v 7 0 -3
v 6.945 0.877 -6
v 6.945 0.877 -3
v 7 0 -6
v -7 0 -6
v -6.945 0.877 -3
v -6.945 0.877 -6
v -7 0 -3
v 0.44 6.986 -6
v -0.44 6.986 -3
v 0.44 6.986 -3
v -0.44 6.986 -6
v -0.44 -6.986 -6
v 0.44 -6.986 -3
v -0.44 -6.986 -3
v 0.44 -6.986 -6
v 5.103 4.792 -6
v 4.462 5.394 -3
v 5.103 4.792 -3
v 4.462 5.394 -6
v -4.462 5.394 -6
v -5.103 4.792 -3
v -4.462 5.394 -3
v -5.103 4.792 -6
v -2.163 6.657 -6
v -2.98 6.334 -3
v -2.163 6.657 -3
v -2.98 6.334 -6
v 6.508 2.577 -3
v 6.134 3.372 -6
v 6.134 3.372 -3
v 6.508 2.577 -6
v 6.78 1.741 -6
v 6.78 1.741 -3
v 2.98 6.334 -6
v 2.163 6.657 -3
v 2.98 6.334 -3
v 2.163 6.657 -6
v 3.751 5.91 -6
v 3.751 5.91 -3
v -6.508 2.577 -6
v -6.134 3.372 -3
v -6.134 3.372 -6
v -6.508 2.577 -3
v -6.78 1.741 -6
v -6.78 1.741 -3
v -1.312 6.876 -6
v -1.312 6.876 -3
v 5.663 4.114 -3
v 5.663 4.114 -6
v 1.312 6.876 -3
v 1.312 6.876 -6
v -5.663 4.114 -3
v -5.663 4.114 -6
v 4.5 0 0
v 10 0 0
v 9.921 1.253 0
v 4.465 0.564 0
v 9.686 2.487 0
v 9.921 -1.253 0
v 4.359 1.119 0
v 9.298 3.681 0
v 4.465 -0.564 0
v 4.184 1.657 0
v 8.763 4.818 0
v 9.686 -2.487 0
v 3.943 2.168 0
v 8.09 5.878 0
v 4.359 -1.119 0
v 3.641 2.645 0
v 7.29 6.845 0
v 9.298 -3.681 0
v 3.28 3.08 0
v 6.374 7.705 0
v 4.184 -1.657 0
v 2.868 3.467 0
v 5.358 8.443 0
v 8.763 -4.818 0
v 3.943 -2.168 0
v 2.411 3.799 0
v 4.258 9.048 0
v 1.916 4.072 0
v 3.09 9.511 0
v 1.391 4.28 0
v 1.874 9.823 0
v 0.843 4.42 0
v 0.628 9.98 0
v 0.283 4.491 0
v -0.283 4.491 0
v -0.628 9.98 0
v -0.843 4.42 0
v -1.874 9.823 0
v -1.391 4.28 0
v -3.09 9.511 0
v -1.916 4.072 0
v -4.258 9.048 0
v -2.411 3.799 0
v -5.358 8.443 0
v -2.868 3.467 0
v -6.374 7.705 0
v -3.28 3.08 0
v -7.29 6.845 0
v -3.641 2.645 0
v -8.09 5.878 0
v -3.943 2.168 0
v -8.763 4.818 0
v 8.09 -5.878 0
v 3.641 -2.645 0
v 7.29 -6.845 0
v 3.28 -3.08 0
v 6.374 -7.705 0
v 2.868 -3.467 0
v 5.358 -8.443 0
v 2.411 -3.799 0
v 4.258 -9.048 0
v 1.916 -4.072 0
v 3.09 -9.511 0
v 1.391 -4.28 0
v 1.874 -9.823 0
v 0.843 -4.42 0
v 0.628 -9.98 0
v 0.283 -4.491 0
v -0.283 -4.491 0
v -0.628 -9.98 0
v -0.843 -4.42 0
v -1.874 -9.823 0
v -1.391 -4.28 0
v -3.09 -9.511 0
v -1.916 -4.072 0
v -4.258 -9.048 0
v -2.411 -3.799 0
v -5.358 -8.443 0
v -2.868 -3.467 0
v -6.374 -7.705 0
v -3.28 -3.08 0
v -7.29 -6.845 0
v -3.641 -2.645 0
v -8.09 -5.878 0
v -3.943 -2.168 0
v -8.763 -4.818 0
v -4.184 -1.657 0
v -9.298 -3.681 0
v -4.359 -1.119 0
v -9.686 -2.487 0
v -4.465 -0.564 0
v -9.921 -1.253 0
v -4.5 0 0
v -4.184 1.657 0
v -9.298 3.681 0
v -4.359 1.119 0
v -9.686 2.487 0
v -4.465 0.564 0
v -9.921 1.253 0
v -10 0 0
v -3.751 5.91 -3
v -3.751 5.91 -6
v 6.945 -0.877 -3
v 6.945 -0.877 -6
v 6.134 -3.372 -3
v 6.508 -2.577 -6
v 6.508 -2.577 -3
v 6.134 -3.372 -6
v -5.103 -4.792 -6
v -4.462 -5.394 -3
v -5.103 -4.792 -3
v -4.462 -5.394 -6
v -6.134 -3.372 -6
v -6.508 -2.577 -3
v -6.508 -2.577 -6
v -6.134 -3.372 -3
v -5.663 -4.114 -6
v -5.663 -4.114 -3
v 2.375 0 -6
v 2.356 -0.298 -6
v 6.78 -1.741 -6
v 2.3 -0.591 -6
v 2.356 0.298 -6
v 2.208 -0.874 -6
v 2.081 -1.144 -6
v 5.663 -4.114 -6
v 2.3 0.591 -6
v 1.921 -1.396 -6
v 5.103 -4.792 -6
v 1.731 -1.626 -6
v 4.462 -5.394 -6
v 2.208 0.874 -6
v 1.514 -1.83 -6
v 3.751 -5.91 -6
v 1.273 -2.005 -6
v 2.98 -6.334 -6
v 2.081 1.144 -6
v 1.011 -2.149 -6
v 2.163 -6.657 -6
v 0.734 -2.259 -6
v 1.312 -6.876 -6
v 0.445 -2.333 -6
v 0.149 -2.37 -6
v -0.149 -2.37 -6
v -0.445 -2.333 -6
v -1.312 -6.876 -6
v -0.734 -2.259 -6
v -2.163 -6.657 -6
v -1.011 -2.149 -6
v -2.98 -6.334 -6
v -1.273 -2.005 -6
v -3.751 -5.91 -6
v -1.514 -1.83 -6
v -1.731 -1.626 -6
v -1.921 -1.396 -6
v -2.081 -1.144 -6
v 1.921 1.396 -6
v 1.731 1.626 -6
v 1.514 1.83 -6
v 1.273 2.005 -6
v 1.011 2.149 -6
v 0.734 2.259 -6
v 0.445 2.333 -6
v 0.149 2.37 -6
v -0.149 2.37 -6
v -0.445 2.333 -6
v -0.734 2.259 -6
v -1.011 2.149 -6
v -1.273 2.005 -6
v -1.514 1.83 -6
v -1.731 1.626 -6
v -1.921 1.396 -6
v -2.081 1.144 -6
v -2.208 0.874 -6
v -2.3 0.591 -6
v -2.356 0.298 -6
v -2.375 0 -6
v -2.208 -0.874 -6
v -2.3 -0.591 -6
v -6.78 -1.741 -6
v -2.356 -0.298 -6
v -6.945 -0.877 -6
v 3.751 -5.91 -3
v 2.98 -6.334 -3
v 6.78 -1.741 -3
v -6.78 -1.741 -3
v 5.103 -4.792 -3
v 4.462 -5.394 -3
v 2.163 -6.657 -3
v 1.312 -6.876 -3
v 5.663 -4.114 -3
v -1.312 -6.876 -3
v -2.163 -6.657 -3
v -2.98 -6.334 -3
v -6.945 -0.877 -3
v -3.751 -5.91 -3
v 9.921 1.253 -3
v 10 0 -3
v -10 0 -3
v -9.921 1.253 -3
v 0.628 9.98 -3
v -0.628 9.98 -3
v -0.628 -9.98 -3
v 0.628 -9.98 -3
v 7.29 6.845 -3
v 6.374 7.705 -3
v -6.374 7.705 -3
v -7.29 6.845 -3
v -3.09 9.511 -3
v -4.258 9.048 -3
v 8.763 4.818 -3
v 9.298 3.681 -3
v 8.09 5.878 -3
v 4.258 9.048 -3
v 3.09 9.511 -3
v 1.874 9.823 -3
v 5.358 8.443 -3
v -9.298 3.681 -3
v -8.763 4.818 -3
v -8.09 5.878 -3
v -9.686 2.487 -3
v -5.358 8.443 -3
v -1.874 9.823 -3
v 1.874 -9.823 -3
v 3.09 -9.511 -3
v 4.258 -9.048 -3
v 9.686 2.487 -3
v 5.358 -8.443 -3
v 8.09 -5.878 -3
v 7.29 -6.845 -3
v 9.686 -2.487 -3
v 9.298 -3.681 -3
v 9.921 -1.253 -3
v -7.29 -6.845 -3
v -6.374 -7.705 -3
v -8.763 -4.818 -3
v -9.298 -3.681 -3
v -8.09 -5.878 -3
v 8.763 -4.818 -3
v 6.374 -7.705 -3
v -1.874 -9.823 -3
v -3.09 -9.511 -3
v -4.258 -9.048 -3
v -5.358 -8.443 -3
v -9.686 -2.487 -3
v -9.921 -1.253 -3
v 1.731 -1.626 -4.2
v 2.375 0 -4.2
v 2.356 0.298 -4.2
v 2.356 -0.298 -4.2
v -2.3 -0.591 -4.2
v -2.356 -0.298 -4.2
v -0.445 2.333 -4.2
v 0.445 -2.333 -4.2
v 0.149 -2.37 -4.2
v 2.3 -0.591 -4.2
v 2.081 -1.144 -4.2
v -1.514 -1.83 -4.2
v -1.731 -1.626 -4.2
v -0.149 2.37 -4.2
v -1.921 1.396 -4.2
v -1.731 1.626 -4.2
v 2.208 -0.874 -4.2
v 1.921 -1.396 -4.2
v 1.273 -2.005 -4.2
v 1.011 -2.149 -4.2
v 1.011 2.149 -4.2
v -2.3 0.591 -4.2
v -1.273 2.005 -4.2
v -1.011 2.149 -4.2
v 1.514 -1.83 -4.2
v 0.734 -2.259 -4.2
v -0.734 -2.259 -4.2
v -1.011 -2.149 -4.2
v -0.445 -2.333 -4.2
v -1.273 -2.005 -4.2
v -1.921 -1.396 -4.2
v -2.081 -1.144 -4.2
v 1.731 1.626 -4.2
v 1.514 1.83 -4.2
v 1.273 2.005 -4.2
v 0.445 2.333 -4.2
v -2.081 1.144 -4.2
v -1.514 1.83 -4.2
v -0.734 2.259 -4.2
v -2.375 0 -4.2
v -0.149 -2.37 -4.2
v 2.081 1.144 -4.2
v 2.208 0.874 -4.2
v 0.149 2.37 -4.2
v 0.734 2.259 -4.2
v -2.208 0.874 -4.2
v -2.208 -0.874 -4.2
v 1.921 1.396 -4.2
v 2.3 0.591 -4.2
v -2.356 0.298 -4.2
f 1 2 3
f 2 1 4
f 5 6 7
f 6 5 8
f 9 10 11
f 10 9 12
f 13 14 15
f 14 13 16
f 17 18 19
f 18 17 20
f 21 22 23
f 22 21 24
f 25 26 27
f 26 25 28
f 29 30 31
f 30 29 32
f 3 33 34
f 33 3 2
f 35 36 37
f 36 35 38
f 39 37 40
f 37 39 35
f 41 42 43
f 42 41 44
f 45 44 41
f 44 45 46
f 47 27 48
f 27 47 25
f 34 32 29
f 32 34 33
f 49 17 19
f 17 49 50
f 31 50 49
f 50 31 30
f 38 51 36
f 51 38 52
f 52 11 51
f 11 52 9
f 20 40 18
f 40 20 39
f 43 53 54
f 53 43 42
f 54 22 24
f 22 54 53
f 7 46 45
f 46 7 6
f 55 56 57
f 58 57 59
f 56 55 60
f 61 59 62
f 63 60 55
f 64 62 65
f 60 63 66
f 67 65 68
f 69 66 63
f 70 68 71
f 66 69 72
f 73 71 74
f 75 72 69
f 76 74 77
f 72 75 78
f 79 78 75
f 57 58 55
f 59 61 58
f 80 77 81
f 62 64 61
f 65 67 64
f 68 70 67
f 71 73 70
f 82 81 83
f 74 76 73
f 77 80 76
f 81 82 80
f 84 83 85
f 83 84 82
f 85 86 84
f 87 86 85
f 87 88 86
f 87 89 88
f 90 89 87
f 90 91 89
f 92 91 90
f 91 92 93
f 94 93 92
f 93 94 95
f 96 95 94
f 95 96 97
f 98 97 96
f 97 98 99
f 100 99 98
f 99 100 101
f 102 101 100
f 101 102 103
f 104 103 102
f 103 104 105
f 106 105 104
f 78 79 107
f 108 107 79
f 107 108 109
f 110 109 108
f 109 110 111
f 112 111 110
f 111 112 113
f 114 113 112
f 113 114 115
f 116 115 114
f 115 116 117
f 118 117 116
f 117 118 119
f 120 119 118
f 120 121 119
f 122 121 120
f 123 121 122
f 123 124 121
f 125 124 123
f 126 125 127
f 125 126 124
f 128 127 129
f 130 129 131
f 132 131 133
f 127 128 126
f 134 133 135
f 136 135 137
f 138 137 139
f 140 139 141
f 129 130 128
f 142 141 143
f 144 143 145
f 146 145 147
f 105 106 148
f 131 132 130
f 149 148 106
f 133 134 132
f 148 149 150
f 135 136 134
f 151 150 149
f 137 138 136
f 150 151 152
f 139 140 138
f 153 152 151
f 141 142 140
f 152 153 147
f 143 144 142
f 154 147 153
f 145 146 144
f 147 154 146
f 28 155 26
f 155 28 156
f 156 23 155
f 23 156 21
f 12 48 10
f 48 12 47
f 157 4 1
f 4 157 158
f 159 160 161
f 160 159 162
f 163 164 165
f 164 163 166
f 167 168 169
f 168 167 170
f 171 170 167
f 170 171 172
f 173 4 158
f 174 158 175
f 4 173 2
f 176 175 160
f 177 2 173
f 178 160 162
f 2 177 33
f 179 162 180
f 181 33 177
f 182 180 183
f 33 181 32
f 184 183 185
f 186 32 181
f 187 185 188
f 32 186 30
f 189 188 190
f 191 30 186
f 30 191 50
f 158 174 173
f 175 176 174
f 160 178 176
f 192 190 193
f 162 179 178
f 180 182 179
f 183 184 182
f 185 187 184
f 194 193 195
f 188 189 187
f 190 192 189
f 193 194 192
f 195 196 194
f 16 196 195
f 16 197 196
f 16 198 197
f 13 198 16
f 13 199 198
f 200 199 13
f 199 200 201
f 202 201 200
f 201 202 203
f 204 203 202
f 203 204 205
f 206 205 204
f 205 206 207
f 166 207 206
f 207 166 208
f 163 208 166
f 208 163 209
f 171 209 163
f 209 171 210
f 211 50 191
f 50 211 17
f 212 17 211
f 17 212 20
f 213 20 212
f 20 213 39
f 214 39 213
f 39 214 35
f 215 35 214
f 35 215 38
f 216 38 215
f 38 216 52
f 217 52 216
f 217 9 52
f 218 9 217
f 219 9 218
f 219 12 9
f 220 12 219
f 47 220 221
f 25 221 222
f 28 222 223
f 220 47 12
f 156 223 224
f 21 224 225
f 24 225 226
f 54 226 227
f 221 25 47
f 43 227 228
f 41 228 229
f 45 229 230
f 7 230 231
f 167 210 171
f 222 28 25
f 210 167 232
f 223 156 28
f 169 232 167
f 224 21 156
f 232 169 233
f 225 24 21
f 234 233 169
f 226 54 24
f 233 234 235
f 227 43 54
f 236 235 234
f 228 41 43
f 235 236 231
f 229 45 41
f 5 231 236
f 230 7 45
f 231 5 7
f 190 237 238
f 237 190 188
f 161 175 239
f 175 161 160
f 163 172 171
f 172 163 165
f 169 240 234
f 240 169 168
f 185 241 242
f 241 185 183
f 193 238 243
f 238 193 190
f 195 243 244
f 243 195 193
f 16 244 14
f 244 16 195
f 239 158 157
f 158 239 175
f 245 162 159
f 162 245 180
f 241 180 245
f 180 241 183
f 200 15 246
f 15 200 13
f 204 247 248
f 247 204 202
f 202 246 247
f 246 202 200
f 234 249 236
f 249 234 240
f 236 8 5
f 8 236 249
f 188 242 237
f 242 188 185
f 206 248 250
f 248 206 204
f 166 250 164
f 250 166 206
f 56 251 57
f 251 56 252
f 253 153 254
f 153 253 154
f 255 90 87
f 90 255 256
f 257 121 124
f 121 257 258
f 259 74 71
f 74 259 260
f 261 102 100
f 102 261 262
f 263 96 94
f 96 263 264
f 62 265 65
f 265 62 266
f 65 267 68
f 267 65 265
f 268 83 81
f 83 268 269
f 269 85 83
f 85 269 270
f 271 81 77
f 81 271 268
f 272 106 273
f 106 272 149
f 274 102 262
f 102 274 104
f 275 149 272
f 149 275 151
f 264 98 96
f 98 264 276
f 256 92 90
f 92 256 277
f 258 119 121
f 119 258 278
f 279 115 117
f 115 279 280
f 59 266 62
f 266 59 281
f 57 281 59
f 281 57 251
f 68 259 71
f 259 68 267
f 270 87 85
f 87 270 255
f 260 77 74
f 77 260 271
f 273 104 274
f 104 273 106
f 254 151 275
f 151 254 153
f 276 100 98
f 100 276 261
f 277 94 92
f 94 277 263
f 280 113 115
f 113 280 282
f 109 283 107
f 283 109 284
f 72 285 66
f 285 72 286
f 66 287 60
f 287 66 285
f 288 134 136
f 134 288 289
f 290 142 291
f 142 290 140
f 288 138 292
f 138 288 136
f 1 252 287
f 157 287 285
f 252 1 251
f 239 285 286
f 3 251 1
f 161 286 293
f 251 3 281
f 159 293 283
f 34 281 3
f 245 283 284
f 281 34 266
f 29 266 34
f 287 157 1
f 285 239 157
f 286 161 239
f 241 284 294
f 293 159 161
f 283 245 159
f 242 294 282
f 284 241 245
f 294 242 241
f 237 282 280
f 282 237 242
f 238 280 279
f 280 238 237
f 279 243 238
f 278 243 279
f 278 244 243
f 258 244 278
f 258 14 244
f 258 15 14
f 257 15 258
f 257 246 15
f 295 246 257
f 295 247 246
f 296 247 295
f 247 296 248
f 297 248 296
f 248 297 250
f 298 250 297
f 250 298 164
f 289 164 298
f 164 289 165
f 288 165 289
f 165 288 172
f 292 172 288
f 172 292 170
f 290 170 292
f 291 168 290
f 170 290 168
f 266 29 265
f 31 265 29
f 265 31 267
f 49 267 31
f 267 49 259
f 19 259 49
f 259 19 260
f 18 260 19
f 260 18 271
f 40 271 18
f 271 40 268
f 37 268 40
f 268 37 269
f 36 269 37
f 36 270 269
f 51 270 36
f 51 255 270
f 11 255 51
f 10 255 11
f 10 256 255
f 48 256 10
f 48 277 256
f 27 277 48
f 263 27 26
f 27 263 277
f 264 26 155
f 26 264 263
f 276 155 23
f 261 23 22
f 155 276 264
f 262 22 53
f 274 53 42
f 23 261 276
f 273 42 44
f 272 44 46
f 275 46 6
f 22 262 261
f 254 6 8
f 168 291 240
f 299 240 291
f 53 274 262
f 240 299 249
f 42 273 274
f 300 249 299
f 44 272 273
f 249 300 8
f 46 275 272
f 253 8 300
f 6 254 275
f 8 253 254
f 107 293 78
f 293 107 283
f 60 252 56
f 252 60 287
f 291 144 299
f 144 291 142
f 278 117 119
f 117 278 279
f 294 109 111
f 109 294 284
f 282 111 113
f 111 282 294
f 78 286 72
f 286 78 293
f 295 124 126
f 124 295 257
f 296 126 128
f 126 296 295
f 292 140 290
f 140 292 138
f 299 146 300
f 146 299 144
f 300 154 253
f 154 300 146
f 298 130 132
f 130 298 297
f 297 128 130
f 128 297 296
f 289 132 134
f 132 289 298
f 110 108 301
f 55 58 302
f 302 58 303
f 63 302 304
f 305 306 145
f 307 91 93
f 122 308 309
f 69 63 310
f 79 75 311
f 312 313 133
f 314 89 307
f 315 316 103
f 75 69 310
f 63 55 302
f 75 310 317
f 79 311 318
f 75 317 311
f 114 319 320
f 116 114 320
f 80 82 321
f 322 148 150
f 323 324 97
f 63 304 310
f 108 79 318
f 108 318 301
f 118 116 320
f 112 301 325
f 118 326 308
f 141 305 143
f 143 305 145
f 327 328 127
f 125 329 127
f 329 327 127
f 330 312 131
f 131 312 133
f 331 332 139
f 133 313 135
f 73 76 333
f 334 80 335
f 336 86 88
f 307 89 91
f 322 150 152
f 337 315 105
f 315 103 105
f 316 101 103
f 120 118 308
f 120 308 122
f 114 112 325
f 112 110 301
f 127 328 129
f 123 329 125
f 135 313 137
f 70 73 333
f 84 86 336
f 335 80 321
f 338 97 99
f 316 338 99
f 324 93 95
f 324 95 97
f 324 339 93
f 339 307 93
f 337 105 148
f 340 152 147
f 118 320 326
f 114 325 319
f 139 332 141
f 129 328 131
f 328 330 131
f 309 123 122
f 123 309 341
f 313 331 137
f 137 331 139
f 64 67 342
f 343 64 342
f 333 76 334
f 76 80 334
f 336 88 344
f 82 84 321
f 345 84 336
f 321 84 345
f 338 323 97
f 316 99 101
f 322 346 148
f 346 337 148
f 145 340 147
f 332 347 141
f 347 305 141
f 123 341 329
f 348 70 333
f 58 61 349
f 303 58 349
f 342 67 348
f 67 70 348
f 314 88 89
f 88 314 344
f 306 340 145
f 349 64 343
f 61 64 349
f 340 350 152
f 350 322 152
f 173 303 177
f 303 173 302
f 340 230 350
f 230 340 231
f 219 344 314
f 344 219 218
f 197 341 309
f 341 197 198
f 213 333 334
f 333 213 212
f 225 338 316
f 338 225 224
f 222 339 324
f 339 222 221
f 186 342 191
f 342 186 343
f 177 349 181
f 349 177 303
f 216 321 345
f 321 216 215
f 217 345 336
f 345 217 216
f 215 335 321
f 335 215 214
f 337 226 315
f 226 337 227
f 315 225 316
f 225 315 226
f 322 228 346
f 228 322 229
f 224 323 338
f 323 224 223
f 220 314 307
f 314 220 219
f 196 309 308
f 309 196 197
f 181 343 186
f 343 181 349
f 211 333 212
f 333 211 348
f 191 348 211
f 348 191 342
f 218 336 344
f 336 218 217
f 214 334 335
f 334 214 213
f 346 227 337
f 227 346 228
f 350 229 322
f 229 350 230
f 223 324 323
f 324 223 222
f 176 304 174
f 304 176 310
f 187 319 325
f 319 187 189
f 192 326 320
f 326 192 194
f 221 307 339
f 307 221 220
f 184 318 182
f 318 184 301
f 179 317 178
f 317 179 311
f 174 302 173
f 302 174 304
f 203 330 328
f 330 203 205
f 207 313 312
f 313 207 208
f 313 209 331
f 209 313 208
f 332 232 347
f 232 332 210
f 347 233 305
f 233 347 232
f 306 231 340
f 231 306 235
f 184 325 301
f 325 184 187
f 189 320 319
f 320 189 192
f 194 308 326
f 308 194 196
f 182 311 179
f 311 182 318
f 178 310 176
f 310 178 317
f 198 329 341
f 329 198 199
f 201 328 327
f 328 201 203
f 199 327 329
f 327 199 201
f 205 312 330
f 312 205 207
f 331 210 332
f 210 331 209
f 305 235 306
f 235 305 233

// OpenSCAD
$fn = 50;


difference() {
	union() {
		translate(v = [0, 0, -6.0000000000]) {
			cylinder(h = 6, r = 7.0000000000);
		}
		translate(v = [0, 0, -3.0000000000]) {
			cylinder(h = 3, r = 10.0000000000);
		}
	}
	union() {
		translate(v = [0, 0, 0]) {
			rotate(a = [0, 0, 0]) {
				difference() {
					union() {
						#translate(v = [0, 0, -6.0000000000]) {
							cylinder(h = 6, r = 2.2500000000);
						}
						#translate(v = [0, 0, -4.2000000000]) {
							cylinder(h = 4.2000000000, r1 = 2.3750000000, r2 = 4.5000000000);
						}
						#translate(v = [0, 0, -6.0000000000]) {
							cylinder(h = 6, r = 2.3750000000);
						}
						#translate(v = [0, 0, -6.0000000000]) {
							cylinder(h = 6, r = 2.2500000000);
						}
					}
					union();
				}
			}
		}
	}
}
